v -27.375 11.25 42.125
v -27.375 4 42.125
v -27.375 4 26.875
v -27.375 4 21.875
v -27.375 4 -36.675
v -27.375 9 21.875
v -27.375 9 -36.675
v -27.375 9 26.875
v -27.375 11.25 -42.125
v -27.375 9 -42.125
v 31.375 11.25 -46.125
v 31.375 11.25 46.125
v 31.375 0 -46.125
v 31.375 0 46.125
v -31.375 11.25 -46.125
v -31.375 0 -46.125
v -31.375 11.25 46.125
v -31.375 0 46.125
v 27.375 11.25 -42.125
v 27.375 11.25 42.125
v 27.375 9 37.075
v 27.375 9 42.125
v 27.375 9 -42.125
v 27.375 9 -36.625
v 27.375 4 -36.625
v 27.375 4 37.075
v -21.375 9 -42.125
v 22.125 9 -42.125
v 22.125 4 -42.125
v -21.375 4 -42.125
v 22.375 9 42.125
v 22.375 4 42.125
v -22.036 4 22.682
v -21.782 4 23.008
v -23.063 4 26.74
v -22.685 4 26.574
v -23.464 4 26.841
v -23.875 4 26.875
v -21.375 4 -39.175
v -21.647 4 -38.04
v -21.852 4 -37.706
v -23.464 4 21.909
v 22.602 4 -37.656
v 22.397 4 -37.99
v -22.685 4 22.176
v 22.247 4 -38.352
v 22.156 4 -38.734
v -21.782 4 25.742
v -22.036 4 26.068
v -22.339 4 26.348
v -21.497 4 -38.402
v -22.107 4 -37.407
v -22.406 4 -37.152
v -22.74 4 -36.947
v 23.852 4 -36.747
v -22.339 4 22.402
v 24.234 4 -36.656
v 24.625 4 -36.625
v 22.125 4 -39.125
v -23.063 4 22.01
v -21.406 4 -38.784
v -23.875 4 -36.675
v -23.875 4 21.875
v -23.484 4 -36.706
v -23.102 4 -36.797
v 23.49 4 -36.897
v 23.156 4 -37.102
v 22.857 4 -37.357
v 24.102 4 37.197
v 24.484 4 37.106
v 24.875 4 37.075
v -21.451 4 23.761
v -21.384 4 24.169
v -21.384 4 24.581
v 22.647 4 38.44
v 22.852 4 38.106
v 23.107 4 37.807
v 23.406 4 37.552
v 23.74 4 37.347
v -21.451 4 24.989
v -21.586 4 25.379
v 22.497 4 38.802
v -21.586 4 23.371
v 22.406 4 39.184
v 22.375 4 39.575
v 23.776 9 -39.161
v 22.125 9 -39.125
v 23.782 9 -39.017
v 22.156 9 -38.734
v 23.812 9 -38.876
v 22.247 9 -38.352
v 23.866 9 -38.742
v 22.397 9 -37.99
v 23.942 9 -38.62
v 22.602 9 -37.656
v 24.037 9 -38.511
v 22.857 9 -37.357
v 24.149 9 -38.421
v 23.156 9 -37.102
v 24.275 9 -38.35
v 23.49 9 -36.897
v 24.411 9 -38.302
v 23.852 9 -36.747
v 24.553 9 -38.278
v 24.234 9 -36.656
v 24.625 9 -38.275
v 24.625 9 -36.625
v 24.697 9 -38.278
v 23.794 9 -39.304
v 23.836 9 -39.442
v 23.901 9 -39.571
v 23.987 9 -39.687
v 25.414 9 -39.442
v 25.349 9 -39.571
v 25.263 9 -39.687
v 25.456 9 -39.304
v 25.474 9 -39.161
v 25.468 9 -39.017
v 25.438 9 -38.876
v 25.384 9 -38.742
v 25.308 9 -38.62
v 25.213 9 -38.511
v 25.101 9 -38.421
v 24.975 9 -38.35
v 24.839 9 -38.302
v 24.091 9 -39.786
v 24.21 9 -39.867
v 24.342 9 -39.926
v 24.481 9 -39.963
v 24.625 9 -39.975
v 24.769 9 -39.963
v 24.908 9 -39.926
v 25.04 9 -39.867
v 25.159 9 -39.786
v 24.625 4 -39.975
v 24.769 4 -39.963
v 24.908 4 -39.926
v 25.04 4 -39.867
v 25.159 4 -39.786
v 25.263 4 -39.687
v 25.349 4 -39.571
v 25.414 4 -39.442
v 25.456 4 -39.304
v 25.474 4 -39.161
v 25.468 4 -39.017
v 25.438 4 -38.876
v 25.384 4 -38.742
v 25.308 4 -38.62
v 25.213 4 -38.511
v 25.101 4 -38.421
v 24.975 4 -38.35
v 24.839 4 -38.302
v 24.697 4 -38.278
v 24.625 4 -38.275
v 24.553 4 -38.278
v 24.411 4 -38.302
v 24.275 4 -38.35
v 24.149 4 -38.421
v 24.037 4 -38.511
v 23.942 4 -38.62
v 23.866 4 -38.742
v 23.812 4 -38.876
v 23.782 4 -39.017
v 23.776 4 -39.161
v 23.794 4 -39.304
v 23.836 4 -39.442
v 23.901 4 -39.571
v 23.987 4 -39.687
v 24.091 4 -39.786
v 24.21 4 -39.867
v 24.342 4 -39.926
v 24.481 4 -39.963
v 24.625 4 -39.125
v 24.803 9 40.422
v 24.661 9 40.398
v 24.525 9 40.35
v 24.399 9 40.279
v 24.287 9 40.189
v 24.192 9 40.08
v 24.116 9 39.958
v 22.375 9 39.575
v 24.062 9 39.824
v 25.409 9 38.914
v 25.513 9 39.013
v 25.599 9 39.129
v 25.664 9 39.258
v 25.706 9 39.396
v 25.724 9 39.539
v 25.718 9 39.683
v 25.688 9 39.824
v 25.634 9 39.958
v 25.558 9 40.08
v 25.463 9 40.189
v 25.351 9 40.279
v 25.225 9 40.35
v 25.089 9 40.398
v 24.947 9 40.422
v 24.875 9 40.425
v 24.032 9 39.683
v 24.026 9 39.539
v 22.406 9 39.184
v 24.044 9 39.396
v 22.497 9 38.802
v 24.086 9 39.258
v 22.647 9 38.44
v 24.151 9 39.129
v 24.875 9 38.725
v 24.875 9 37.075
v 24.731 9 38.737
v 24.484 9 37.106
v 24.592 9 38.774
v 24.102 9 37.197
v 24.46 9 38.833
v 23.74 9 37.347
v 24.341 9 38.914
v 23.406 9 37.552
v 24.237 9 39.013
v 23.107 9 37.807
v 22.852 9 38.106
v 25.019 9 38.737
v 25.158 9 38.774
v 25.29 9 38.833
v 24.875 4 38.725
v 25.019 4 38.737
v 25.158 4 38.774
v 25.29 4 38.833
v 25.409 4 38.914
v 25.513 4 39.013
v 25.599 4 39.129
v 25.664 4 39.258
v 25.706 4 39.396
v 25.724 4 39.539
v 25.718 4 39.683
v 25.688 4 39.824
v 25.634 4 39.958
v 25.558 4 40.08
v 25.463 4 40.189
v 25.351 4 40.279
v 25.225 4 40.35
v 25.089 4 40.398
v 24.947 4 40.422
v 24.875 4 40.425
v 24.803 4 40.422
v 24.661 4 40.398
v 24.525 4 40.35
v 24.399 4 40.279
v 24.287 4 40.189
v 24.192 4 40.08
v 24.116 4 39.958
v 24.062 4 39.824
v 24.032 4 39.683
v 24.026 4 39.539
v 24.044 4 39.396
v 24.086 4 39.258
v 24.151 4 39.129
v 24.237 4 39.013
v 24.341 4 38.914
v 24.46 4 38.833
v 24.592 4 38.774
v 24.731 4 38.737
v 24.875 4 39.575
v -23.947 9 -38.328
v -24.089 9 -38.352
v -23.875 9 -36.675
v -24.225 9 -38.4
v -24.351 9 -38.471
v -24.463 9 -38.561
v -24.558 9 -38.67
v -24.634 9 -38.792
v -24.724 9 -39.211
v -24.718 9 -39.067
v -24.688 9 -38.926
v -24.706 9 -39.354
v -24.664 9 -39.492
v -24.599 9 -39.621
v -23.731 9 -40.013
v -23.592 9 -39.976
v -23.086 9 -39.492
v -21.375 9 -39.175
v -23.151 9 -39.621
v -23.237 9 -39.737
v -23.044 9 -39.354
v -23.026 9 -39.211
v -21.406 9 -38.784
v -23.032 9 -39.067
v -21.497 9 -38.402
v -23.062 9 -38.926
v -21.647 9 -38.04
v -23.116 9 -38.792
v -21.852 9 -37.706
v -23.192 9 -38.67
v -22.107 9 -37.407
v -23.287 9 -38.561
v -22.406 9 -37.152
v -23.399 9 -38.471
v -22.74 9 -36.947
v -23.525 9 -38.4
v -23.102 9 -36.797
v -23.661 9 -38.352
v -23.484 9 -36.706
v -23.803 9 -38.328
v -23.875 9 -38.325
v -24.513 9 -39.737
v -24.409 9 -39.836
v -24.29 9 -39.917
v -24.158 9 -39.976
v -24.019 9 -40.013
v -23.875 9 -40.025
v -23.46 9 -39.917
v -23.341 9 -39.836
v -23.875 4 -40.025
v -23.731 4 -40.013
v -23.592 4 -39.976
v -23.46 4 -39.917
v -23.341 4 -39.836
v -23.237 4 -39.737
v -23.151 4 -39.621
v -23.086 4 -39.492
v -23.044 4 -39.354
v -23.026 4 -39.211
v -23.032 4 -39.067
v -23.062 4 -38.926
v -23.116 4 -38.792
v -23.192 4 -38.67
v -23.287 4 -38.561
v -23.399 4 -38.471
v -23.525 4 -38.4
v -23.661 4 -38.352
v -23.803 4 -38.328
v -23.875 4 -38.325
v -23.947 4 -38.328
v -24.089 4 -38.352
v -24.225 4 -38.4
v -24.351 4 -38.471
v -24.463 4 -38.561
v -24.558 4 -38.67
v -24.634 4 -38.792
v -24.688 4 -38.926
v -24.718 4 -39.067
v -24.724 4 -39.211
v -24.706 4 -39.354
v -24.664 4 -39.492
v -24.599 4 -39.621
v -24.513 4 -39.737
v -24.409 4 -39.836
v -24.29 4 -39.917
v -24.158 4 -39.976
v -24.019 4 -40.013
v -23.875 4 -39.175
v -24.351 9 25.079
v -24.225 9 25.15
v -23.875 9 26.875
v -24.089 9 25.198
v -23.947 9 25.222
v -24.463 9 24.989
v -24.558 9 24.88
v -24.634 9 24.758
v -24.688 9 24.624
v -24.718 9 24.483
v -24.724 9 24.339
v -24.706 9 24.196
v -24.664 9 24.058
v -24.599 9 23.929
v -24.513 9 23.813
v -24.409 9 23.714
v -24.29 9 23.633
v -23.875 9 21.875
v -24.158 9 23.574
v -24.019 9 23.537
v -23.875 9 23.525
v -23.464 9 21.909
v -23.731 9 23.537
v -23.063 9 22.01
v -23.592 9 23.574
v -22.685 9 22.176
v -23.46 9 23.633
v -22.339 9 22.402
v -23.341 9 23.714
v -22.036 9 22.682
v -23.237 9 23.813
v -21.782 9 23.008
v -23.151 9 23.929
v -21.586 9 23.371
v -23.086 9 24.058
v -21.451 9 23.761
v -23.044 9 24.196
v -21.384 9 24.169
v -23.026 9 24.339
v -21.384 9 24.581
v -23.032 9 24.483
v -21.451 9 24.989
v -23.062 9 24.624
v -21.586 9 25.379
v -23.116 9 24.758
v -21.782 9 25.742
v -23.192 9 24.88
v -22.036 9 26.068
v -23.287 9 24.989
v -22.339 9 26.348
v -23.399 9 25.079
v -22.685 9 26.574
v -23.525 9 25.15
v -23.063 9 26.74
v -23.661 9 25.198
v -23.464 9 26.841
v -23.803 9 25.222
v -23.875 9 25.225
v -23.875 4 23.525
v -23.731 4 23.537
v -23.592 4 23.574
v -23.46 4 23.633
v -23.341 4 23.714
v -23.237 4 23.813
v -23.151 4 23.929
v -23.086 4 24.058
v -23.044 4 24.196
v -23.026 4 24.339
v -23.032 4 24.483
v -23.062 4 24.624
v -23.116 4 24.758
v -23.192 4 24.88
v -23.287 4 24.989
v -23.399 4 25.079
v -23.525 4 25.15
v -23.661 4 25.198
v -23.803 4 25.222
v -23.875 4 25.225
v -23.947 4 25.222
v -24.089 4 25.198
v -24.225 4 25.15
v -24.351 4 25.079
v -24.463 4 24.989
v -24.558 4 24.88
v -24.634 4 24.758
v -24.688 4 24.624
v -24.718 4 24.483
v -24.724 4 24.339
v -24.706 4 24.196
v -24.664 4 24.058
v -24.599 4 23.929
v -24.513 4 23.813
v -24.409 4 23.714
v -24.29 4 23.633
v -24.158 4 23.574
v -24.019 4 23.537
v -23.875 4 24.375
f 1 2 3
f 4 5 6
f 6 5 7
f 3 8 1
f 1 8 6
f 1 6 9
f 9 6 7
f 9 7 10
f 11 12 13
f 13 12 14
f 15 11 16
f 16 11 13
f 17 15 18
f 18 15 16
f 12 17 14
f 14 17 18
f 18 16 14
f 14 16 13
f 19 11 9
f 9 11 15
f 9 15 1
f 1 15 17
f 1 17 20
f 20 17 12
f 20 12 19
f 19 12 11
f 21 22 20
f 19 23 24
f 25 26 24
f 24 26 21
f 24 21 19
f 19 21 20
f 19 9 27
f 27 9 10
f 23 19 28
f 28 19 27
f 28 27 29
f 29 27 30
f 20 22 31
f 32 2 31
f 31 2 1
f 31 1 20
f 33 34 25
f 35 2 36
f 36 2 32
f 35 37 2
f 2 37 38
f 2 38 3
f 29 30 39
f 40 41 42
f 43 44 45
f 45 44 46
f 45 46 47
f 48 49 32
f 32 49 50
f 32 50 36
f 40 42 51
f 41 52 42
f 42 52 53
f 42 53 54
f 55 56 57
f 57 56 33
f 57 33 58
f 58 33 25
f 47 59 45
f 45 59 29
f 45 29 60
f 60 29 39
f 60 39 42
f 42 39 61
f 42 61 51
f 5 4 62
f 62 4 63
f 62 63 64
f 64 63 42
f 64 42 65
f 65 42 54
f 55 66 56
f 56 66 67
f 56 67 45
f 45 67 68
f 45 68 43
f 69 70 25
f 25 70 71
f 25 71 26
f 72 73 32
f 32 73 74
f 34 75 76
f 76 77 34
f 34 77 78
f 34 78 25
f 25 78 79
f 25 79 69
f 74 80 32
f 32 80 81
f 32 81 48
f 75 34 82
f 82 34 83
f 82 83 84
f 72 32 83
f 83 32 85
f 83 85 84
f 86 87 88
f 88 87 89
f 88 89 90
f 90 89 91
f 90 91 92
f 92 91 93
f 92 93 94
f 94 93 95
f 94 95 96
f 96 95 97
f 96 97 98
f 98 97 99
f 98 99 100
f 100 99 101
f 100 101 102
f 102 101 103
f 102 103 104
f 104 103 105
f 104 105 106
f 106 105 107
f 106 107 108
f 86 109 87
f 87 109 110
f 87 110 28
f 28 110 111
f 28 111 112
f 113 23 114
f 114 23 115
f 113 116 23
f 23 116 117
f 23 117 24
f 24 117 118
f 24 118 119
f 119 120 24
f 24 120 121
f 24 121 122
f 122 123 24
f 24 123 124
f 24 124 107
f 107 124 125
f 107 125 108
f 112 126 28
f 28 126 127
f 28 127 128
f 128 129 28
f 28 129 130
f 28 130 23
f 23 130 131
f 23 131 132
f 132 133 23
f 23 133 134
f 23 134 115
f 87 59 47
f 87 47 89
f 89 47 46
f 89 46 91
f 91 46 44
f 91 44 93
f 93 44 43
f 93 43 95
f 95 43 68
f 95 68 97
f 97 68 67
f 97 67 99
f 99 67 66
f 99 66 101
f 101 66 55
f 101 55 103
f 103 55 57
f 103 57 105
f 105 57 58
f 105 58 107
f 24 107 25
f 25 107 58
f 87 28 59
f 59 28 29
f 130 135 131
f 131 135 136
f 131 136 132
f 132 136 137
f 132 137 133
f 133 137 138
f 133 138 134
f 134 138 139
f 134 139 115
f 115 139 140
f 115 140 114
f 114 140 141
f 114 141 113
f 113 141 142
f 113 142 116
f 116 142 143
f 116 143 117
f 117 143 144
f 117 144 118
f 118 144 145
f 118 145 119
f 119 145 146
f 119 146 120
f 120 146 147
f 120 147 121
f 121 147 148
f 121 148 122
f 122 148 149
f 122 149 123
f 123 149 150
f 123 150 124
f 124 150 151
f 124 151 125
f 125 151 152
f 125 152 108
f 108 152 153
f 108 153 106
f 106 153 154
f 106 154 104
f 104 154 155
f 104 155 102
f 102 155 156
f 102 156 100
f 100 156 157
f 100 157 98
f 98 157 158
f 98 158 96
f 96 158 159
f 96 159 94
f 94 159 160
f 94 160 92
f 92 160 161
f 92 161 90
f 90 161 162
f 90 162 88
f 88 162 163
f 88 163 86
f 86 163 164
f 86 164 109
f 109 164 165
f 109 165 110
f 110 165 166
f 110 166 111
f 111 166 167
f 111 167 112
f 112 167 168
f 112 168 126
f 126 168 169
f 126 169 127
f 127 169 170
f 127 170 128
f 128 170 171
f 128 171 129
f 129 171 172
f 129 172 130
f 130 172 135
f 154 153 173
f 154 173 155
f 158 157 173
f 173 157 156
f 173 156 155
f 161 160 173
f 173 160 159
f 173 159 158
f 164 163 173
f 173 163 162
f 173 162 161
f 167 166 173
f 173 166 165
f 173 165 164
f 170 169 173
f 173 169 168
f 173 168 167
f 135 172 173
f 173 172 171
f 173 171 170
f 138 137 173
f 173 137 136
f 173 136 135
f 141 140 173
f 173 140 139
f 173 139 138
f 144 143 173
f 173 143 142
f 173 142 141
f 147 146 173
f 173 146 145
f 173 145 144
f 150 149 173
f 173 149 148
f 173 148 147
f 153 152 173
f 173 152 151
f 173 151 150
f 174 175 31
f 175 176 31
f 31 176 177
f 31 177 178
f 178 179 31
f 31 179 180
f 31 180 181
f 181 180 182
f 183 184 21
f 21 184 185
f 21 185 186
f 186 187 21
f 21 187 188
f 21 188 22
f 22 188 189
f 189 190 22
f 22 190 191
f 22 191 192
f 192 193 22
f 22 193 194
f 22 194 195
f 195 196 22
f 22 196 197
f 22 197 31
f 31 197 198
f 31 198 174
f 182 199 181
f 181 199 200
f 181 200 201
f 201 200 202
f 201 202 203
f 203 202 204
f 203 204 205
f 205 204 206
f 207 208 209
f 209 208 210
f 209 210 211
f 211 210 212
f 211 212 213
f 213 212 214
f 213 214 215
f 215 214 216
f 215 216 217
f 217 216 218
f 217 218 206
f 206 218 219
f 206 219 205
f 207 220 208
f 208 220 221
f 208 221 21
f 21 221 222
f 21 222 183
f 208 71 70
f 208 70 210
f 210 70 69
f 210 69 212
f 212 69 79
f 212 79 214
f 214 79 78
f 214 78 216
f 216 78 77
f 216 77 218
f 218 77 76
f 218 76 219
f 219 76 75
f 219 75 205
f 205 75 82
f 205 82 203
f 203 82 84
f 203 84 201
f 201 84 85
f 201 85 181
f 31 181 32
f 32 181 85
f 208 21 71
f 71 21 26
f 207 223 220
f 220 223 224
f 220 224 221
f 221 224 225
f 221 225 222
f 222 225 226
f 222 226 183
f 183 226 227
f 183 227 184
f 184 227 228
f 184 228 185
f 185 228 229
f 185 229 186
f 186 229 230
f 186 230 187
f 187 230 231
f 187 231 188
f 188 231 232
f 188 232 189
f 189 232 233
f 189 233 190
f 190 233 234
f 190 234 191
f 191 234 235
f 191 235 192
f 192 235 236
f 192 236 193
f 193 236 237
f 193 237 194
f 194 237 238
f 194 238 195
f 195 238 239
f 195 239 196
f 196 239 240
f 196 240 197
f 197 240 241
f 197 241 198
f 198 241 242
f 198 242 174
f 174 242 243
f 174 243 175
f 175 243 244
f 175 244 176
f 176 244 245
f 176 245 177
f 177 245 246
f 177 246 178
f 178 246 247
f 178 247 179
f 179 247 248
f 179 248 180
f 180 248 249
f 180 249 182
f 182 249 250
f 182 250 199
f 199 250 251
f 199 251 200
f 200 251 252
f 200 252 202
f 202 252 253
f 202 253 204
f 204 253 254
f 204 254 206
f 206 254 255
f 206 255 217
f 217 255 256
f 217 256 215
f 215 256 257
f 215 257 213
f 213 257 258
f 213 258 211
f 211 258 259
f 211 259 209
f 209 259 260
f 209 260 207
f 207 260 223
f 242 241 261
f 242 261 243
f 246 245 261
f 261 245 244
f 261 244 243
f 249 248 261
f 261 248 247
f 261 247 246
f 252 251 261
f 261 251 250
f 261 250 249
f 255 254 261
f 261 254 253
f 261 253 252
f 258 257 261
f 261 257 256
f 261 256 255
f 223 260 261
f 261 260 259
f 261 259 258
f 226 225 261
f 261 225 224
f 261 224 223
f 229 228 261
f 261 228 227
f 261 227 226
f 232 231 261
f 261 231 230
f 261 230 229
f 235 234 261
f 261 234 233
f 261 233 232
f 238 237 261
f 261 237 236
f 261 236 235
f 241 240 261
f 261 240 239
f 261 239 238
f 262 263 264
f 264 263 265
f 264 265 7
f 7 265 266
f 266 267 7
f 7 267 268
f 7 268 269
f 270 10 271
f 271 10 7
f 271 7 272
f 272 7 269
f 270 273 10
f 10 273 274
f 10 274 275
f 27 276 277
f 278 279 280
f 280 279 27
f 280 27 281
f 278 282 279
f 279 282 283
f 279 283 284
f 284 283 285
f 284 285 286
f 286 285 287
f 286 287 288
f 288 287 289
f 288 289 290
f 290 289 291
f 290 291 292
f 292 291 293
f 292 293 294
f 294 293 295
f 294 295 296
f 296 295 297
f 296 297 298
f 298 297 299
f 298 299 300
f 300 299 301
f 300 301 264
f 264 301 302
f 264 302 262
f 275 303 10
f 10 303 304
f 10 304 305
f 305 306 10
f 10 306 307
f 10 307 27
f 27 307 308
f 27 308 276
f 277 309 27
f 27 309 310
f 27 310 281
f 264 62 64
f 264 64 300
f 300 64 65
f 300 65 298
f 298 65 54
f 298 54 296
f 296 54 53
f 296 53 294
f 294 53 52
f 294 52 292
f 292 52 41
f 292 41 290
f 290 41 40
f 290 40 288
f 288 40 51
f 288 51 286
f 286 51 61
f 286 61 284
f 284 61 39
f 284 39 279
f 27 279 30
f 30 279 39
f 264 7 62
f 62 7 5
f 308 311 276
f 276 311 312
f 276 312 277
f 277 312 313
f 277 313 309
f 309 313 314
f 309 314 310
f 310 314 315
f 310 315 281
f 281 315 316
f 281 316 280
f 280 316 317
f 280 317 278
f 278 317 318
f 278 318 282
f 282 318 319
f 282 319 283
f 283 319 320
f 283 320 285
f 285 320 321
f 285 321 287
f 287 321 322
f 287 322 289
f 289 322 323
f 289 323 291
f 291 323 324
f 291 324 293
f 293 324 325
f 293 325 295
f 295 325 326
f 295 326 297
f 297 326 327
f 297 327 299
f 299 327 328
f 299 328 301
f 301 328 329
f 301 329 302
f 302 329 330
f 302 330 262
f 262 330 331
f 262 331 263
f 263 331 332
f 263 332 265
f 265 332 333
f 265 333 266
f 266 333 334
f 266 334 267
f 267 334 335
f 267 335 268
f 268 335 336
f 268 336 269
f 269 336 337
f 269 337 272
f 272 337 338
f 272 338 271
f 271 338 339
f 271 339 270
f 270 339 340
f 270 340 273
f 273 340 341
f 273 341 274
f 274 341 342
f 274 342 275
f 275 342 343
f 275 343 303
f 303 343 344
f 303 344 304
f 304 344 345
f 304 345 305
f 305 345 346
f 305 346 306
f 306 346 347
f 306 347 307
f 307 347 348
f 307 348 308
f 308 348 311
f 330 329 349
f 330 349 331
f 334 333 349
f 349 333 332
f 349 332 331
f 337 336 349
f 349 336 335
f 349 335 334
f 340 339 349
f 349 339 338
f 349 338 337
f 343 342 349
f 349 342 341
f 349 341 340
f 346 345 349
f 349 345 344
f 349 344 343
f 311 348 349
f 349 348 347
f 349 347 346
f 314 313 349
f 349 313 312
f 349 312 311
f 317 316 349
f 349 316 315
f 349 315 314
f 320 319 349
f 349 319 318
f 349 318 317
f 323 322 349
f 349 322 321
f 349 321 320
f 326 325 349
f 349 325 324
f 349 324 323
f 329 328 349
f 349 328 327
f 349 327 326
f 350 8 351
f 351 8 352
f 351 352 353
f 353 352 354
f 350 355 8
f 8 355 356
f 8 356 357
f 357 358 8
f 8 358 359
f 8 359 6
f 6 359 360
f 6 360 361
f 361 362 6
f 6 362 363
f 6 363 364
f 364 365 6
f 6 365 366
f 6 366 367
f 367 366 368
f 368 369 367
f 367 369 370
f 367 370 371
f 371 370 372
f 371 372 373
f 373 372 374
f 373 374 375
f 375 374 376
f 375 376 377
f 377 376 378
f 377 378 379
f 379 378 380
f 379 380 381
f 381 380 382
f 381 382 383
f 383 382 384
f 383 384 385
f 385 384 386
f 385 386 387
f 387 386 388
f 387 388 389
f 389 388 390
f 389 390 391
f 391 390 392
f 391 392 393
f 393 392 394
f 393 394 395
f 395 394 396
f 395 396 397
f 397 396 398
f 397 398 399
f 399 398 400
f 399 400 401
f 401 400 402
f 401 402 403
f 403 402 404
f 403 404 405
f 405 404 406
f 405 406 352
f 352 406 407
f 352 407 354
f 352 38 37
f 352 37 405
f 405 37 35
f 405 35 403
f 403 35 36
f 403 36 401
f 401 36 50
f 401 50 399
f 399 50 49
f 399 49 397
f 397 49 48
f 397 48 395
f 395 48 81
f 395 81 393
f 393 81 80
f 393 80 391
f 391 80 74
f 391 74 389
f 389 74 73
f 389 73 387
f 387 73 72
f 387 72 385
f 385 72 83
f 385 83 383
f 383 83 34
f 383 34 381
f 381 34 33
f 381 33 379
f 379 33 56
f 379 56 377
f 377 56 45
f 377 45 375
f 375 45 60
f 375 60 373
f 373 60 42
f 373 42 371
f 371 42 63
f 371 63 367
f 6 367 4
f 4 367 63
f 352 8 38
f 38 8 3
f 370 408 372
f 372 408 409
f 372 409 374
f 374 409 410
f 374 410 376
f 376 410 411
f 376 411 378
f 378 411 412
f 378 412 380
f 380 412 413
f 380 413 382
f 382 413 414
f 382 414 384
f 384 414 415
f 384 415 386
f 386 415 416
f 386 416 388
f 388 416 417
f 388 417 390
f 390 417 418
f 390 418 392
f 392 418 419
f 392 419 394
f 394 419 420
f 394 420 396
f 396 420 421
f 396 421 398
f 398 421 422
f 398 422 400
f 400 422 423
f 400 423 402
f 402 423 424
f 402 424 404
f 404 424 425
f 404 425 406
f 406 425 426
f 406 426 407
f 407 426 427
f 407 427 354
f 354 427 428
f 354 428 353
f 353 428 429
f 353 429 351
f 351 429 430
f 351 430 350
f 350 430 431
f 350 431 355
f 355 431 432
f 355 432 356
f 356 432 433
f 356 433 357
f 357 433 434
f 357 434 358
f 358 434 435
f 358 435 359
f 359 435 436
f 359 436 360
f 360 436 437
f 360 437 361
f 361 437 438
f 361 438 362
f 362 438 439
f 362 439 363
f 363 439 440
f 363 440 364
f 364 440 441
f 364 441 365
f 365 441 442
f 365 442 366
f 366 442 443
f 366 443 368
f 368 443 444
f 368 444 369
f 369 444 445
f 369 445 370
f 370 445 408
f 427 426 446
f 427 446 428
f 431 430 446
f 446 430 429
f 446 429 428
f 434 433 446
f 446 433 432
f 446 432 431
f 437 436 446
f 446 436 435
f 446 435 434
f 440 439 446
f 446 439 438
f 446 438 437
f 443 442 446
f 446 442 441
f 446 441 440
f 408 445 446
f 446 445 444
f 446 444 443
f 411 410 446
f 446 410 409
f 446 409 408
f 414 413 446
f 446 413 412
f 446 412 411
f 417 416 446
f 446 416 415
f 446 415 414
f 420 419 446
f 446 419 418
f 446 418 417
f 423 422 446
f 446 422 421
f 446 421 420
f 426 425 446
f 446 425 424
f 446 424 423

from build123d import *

# Parameters (mm, degrees)
SKETCH1_W           = 62.75
SKETCH1_H           = 92.25
BOSS_EXTRUDE1_DEPTH = 4
SKETCH2_W           = 62.75
SKETCH2_H           = 92.25
SKETCH2_W_2         = 54.75
SKETCH2_H_2         = 84.25
BOSS_EXTRUDE2_DEPTH = 7.25
SKETCH3_R           = 0.85
BOSS_EXTRUDE3_DEPTH = 5


with BuildPart() as part:
    # Sketch1 → Boss-Extrude1 (new body)
    with BuildSketch(Plane(origin=(0, 0, 0), x_dir=(1, 0, 0), z_dir=(0, 1, 0))):
        Rectangle(SKETCH1_W, SKETCH1_H)
    extrude(amount=BOSS_EXTRUDE1_DEPTH)

    # Sketch2 → Boss-Extrude2 (add)
    with BuildSketch(Plane(origin=(0, 4, 0), x_dir=(1, 0, 0), z_dir=(0, 1, 0))):
        Rectangle(SKETCH2_W, SKETCH2_H)
        Rectangle(SKETCH2_W_2, SKETCH2_H_2, mode=Mode.SUBTRACT)
    extrude(amount=BOSS_EXTRUDE2_DEPTH)

    # Sketch3 → Boss-Extrude3 (add)
    with BuildSketch(Plane(origin=(0, 4, 0), x_dir=(1, 0, 0), z_dir=(0, 1, 0))):
        with BuildLine():
            Line((-21.375, 39.175), (-21.375, 42.125))
            Line((-21.375, 42.125), (-27.375, 42.125))
            Line((-27.375, 42.125), (-27.375, 36.675))
            Line((-27.375, 36.675), (-23.875, 36.675))
            ThreePointArc((-23.875, 36.675), (-22.107233047, 37.407233047), (-21.375, 39.175))
        make_face()
        with Locations((-23.875, 39.175)):
            Circle(SKETCH3_R, mode=Mode.SUBTRACT)
        with BuildLine():
            Line((22.125, 39.125), (22.125, 42.125))
            Line((22.125, 42.125), (27.375, 42.125))
            Line((27.375, 42.125), (27.375, 36.625))
            Line((27.375, 36.625), (24.625, 36.625))
            ThreePointArc((24.625, 36.625), (22.857233047, 37.357233047), (22.125, 39.125))
        make_face()
        with Locations((24.625, 39.125)):
            Circle(SKETCH3_R, mode=Mode.SUBTRACT)
        with BuildLine():
            Line((22.375, -39.575), (22.375, -42.125))
            Line((22.375, -42.125), (27.375, -42.125))
            Line((27.375, -42.125), (27.375, -37.075))
            Line((27.375, -37.075), (24.875, -37.075))
            ThreePointArc((24.875, -37.075), (23.107233047, -37.807233047), (22.375, -39.575))
        make_face()
        with Locations((24.875, -39.575)):
            Circle(SKETCH3_R, mode=Mode.SUBTRACT)
        with BuildLine():
            Line((-23.875, -26.875), (-27.375, -26.875))
            Line((-27.375, -26.875), (-27.375, -21.875))
            Line((-27.375, -21.875), (-23.875, -21.875))
            ThreePointArc((-23.875, -21.875), (-21.375, -24.375), (-23.875, -26.875))
        make_face()
        with Locations((-23.875, -24.375)):
            Circle(SKETCH3_R, mode=Mode.SUBTRACT)
    extrude(amount=BOSS_EXTRUDE3_DEPTH)


solid = part.part
